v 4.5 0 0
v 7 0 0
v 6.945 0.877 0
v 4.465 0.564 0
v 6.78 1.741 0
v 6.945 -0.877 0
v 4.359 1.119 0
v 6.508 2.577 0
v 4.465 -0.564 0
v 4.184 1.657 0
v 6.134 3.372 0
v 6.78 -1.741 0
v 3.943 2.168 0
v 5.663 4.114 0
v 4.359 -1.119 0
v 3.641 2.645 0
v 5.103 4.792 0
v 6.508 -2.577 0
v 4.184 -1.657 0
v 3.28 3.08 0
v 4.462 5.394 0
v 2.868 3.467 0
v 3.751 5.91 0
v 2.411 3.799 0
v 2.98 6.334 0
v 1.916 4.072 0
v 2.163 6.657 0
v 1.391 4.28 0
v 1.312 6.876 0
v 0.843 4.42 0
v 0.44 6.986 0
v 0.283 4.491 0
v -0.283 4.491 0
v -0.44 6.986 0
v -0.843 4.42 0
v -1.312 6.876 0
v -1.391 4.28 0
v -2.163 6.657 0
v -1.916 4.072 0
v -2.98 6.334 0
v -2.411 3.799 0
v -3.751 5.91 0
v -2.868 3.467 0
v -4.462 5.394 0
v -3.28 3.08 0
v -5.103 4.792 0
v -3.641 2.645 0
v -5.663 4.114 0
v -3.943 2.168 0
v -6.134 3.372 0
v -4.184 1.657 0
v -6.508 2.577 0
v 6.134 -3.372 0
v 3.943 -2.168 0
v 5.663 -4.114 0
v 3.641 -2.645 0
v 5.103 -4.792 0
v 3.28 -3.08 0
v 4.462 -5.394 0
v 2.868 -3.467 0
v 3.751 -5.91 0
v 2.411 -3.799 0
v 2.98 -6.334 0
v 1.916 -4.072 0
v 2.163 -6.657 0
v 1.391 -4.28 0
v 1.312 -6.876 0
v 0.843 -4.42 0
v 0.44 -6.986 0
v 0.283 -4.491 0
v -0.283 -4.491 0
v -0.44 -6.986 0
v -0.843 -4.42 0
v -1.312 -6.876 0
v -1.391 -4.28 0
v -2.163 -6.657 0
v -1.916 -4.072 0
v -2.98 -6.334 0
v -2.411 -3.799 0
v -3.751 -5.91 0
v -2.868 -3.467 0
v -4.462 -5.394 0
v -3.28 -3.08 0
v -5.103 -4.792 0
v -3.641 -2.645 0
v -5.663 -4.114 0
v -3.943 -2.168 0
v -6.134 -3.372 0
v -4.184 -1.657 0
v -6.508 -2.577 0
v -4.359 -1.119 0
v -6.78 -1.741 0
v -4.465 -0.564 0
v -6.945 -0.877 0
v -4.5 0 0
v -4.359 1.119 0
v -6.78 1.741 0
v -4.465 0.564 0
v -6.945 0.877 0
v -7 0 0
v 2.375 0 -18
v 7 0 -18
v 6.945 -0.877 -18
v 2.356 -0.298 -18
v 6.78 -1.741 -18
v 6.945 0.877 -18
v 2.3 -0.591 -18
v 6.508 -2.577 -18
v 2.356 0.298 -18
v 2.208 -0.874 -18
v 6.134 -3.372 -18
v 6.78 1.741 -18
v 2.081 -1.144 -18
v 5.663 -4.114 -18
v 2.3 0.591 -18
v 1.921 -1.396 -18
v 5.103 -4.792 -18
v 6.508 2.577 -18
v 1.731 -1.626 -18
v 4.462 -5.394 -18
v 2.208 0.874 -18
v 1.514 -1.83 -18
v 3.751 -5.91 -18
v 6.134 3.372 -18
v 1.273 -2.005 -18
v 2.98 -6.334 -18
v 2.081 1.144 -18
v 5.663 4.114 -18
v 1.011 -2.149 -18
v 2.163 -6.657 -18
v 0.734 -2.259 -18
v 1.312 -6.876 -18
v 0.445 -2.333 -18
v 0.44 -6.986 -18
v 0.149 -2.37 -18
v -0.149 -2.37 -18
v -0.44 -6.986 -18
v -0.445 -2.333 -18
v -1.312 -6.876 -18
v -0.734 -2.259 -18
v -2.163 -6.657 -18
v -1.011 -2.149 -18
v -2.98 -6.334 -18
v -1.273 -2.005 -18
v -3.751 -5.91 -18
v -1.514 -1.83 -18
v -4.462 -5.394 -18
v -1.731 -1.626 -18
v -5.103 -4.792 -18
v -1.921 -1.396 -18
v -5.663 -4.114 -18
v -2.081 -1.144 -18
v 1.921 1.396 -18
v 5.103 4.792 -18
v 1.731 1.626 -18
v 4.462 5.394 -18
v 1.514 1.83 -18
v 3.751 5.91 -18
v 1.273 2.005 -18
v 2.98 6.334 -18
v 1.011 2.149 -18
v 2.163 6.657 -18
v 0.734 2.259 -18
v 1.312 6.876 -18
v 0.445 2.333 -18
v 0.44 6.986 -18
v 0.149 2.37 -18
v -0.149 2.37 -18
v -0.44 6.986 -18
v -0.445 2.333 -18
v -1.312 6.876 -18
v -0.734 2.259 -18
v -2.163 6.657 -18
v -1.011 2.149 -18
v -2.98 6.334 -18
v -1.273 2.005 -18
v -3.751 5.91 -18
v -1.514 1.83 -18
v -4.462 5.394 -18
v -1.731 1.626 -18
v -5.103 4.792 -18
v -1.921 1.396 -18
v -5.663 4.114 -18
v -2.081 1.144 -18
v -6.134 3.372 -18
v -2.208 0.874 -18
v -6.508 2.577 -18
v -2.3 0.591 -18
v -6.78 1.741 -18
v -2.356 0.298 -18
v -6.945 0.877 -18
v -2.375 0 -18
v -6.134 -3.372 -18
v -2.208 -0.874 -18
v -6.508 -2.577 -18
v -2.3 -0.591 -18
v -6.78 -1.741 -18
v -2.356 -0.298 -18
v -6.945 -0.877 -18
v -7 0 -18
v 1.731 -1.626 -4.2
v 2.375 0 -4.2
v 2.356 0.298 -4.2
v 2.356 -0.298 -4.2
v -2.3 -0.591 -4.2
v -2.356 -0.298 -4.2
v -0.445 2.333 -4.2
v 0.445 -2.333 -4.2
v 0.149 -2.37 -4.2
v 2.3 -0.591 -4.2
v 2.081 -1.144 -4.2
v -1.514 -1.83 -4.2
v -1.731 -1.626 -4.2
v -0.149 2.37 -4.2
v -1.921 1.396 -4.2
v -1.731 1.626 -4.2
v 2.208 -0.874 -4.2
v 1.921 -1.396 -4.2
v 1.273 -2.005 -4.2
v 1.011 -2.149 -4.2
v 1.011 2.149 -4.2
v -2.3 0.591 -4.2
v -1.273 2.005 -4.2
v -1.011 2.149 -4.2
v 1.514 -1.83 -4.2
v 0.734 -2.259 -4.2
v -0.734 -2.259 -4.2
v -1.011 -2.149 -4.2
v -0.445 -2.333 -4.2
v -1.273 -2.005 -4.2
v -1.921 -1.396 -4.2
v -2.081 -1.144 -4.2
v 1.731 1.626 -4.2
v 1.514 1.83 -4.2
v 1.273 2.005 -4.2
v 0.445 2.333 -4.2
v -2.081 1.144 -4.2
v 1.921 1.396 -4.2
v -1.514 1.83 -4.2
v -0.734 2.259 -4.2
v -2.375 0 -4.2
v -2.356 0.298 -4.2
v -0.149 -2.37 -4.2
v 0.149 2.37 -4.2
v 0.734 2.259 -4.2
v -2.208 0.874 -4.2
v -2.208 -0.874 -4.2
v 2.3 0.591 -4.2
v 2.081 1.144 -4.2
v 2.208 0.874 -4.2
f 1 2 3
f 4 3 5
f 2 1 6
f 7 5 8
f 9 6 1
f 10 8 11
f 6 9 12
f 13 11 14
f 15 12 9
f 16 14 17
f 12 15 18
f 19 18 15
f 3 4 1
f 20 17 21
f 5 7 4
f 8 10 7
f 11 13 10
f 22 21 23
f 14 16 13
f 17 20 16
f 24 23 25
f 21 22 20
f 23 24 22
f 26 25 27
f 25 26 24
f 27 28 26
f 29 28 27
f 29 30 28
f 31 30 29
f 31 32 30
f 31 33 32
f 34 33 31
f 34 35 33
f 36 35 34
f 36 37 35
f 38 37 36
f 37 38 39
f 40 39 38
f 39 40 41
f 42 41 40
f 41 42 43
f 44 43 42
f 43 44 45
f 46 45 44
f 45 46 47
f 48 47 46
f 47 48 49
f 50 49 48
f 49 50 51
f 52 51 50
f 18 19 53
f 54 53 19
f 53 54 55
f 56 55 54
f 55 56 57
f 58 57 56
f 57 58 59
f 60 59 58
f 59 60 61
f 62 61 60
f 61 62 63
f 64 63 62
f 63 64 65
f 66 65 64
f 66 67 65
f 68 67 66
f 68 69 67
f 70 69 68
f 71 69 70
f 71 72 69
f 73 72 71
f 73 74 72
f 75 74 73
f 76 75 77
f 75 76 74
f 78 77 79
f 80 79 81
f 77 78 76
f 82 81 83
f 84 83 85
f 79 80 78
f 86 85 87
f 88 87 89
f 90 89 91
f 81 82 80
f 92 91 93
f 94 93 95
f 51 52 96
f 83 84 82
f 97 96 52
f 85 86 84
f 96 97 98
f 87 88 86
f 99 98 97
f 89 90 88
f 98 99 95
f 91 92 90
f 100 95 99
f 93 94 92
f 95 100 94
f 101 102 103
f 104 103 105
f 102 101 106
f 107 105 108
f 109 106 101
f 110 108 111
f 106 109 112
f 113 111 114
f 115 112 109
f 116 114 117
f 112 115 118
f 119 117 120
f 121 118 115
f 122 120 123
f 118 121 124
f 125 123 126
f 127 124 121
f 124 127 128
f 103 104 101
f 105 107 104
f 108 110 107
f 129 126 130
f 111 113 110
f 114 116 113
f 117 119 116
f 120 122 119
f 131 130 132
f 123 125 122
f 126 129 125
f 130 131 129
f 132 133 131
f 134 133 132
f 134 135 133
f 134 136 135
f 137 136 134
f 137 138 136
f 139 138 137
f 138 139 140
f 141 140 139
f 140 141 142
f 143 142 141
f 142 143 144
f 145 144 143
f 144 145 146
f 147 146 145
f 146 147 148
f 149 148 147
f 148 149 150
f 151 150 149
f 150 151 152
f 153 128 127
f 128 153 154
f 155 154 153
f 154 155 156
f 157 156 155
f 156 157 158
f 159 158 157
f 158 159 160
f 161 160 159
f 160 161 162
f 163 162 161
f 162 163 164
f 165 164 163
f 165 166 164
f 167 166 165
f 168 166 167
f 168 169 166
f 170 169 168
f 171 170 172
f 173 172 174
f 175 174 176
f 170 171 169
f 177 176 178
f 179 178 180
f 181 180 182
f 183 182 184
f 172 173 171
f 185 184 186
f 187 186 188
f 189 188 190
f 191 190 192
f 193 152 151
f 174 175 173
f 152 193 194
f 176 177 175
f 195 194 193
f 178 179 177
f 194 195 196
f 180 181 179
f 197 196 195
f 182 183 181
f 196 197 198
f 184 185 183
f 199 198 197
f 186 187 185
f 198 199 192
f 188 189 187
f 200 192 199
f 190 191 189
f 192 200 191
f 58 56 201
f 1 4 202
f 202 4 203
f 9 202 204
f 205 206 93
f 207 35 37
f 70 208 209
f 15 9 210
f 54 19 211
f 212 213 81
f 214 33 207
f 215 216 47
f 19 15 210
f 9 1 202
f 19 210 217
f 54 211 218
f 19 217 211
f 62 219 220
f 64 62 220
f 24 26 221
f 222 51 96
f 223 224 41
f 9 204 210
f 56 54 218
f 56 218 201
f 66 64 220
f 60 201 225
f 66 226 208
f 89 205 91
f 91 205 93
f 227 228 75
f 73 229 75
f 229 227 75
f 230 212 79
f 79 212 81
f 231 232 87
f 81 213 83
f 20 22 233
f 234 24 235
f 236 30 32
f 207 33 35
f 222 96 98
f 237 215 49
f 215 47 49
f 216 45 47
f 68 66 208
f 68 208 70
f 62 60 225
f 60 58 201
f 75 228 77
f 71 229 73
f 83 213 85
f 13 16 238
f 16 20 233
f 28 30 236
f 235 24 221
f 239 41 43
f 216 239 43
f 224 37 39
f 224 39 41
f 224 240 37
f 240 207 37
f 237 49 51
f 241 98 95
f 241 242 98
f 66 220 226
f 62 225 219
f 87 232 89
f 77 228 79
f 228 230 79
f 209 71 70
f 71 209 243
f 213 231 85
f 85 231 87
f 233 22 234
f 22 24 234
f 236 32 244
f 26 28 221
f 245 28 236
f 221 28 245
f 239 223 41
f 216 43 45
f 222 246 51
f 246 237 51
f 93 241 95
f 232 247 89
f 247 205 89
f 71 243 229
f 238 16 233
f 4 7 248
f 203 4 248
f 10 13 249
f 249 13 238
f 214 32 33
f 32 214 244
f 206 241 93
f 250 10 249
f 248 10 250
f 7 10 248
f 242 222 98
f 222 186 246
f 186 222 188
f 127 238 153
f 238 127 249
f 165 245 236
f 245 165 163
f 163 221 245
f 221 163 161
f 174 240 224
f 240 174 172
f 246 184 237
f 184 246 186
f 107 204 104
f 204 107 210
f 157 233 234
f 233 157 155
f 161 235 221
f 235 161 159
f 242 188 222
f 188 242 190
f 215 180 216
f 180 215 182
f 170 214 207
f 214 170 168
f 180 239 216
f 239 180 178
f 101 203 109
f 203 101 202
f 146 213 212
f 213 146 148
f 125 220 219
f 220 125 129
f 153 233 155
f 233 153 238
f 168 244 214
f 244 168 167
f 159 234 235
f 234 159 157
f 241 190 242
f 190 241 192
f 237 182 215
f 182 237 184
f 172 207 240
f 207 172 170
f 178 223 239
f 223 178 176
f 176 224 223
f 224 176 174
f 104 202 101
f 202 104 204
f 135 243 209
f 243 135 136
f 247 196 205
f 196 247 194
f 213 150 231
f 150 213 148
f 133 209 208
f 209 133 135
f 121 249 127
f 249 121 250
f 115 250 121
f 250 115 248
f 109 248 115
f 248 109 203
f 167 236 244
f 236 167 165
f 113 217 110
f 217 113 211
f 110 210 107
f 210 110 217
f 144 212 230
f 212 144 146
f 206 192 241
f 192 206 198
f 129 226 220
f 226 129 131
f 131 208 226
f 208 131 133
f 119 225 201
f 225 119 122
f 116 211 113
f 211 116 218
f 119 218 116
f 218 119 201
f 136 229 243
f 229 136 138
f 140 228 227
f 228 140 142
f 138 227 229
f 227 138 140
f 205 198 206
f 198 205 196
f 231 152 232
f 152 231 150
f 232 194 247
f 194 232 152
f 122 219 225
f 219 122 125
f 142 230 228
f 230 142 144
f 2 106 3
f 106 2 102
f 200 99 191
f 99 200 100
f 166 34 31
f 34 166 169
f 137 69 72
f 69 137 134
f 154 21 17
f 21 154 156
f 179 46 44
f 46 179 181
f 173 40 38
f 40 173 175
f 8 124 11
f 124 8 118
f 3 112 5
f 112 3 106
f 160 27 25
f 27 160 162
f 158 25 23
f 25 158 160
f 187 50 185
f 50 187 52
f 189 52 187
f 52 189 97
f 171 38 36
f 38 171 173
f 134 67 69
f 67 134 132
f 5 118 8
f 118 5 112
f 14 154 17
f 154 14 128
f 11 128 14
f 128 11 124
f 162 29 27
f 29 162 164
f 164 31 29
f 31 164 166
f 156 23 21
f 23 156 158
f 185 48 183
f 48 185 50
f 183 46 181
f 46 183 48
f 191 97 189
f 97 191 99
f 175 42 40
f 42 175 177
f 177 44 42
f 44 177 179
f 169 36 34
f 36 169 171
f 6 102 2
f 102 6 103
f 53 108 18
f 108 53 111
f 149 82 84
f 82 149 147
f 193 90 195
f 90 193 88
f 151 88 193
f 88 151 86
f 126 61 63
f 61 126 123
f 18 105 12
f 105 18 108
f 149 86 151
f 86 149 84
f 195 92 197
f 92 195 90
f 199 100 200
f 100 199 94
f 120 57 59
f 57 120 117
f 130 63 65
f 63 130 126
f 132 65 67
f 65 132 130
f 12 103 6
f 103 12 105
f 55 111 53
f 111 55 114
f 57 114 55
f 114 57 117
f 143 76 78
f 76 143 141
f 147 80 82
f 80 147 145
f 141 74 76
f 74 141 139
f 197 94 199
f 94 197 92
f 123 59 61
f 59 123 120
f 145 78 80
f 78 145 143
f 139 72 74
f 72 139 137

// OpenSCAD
$fn = 50;


difference() {
	union() {
		translate(v = [0, 0, -18.0000000000]) {
			cylinder(h = 18, r = 7.0000000000);
		}
		cylinder(h = 0, r = 16.0000000000);
	}
	union() {
		translate(v = [0, 0, 0]) {
			rotate(a = [0, 0, 0]) {
				difference() {
					union() {
						#translate(v = [0, 0, -18.0000000000]) {
							cylinder(h = 18, r = 2.2500000000);
						}
						#translate(v = [0, 0, -4.2000000000]) {
							cylinder(h = 4.2000000000, r = 7.0000000000, r1 = 2.3750000000, r2 = 4.5000000000);
						}
						#translate(v = [0, 0, -18.0000000000]) {
							cylinder(h = 18, r = 2.3750000000);
						}
						#translate(v = [0, 0, -18.0000000000]) {
							cylinder(h = 18, r = 2.2500000000);
						}
					}
					union();
				}
			}
		}
	}
}
